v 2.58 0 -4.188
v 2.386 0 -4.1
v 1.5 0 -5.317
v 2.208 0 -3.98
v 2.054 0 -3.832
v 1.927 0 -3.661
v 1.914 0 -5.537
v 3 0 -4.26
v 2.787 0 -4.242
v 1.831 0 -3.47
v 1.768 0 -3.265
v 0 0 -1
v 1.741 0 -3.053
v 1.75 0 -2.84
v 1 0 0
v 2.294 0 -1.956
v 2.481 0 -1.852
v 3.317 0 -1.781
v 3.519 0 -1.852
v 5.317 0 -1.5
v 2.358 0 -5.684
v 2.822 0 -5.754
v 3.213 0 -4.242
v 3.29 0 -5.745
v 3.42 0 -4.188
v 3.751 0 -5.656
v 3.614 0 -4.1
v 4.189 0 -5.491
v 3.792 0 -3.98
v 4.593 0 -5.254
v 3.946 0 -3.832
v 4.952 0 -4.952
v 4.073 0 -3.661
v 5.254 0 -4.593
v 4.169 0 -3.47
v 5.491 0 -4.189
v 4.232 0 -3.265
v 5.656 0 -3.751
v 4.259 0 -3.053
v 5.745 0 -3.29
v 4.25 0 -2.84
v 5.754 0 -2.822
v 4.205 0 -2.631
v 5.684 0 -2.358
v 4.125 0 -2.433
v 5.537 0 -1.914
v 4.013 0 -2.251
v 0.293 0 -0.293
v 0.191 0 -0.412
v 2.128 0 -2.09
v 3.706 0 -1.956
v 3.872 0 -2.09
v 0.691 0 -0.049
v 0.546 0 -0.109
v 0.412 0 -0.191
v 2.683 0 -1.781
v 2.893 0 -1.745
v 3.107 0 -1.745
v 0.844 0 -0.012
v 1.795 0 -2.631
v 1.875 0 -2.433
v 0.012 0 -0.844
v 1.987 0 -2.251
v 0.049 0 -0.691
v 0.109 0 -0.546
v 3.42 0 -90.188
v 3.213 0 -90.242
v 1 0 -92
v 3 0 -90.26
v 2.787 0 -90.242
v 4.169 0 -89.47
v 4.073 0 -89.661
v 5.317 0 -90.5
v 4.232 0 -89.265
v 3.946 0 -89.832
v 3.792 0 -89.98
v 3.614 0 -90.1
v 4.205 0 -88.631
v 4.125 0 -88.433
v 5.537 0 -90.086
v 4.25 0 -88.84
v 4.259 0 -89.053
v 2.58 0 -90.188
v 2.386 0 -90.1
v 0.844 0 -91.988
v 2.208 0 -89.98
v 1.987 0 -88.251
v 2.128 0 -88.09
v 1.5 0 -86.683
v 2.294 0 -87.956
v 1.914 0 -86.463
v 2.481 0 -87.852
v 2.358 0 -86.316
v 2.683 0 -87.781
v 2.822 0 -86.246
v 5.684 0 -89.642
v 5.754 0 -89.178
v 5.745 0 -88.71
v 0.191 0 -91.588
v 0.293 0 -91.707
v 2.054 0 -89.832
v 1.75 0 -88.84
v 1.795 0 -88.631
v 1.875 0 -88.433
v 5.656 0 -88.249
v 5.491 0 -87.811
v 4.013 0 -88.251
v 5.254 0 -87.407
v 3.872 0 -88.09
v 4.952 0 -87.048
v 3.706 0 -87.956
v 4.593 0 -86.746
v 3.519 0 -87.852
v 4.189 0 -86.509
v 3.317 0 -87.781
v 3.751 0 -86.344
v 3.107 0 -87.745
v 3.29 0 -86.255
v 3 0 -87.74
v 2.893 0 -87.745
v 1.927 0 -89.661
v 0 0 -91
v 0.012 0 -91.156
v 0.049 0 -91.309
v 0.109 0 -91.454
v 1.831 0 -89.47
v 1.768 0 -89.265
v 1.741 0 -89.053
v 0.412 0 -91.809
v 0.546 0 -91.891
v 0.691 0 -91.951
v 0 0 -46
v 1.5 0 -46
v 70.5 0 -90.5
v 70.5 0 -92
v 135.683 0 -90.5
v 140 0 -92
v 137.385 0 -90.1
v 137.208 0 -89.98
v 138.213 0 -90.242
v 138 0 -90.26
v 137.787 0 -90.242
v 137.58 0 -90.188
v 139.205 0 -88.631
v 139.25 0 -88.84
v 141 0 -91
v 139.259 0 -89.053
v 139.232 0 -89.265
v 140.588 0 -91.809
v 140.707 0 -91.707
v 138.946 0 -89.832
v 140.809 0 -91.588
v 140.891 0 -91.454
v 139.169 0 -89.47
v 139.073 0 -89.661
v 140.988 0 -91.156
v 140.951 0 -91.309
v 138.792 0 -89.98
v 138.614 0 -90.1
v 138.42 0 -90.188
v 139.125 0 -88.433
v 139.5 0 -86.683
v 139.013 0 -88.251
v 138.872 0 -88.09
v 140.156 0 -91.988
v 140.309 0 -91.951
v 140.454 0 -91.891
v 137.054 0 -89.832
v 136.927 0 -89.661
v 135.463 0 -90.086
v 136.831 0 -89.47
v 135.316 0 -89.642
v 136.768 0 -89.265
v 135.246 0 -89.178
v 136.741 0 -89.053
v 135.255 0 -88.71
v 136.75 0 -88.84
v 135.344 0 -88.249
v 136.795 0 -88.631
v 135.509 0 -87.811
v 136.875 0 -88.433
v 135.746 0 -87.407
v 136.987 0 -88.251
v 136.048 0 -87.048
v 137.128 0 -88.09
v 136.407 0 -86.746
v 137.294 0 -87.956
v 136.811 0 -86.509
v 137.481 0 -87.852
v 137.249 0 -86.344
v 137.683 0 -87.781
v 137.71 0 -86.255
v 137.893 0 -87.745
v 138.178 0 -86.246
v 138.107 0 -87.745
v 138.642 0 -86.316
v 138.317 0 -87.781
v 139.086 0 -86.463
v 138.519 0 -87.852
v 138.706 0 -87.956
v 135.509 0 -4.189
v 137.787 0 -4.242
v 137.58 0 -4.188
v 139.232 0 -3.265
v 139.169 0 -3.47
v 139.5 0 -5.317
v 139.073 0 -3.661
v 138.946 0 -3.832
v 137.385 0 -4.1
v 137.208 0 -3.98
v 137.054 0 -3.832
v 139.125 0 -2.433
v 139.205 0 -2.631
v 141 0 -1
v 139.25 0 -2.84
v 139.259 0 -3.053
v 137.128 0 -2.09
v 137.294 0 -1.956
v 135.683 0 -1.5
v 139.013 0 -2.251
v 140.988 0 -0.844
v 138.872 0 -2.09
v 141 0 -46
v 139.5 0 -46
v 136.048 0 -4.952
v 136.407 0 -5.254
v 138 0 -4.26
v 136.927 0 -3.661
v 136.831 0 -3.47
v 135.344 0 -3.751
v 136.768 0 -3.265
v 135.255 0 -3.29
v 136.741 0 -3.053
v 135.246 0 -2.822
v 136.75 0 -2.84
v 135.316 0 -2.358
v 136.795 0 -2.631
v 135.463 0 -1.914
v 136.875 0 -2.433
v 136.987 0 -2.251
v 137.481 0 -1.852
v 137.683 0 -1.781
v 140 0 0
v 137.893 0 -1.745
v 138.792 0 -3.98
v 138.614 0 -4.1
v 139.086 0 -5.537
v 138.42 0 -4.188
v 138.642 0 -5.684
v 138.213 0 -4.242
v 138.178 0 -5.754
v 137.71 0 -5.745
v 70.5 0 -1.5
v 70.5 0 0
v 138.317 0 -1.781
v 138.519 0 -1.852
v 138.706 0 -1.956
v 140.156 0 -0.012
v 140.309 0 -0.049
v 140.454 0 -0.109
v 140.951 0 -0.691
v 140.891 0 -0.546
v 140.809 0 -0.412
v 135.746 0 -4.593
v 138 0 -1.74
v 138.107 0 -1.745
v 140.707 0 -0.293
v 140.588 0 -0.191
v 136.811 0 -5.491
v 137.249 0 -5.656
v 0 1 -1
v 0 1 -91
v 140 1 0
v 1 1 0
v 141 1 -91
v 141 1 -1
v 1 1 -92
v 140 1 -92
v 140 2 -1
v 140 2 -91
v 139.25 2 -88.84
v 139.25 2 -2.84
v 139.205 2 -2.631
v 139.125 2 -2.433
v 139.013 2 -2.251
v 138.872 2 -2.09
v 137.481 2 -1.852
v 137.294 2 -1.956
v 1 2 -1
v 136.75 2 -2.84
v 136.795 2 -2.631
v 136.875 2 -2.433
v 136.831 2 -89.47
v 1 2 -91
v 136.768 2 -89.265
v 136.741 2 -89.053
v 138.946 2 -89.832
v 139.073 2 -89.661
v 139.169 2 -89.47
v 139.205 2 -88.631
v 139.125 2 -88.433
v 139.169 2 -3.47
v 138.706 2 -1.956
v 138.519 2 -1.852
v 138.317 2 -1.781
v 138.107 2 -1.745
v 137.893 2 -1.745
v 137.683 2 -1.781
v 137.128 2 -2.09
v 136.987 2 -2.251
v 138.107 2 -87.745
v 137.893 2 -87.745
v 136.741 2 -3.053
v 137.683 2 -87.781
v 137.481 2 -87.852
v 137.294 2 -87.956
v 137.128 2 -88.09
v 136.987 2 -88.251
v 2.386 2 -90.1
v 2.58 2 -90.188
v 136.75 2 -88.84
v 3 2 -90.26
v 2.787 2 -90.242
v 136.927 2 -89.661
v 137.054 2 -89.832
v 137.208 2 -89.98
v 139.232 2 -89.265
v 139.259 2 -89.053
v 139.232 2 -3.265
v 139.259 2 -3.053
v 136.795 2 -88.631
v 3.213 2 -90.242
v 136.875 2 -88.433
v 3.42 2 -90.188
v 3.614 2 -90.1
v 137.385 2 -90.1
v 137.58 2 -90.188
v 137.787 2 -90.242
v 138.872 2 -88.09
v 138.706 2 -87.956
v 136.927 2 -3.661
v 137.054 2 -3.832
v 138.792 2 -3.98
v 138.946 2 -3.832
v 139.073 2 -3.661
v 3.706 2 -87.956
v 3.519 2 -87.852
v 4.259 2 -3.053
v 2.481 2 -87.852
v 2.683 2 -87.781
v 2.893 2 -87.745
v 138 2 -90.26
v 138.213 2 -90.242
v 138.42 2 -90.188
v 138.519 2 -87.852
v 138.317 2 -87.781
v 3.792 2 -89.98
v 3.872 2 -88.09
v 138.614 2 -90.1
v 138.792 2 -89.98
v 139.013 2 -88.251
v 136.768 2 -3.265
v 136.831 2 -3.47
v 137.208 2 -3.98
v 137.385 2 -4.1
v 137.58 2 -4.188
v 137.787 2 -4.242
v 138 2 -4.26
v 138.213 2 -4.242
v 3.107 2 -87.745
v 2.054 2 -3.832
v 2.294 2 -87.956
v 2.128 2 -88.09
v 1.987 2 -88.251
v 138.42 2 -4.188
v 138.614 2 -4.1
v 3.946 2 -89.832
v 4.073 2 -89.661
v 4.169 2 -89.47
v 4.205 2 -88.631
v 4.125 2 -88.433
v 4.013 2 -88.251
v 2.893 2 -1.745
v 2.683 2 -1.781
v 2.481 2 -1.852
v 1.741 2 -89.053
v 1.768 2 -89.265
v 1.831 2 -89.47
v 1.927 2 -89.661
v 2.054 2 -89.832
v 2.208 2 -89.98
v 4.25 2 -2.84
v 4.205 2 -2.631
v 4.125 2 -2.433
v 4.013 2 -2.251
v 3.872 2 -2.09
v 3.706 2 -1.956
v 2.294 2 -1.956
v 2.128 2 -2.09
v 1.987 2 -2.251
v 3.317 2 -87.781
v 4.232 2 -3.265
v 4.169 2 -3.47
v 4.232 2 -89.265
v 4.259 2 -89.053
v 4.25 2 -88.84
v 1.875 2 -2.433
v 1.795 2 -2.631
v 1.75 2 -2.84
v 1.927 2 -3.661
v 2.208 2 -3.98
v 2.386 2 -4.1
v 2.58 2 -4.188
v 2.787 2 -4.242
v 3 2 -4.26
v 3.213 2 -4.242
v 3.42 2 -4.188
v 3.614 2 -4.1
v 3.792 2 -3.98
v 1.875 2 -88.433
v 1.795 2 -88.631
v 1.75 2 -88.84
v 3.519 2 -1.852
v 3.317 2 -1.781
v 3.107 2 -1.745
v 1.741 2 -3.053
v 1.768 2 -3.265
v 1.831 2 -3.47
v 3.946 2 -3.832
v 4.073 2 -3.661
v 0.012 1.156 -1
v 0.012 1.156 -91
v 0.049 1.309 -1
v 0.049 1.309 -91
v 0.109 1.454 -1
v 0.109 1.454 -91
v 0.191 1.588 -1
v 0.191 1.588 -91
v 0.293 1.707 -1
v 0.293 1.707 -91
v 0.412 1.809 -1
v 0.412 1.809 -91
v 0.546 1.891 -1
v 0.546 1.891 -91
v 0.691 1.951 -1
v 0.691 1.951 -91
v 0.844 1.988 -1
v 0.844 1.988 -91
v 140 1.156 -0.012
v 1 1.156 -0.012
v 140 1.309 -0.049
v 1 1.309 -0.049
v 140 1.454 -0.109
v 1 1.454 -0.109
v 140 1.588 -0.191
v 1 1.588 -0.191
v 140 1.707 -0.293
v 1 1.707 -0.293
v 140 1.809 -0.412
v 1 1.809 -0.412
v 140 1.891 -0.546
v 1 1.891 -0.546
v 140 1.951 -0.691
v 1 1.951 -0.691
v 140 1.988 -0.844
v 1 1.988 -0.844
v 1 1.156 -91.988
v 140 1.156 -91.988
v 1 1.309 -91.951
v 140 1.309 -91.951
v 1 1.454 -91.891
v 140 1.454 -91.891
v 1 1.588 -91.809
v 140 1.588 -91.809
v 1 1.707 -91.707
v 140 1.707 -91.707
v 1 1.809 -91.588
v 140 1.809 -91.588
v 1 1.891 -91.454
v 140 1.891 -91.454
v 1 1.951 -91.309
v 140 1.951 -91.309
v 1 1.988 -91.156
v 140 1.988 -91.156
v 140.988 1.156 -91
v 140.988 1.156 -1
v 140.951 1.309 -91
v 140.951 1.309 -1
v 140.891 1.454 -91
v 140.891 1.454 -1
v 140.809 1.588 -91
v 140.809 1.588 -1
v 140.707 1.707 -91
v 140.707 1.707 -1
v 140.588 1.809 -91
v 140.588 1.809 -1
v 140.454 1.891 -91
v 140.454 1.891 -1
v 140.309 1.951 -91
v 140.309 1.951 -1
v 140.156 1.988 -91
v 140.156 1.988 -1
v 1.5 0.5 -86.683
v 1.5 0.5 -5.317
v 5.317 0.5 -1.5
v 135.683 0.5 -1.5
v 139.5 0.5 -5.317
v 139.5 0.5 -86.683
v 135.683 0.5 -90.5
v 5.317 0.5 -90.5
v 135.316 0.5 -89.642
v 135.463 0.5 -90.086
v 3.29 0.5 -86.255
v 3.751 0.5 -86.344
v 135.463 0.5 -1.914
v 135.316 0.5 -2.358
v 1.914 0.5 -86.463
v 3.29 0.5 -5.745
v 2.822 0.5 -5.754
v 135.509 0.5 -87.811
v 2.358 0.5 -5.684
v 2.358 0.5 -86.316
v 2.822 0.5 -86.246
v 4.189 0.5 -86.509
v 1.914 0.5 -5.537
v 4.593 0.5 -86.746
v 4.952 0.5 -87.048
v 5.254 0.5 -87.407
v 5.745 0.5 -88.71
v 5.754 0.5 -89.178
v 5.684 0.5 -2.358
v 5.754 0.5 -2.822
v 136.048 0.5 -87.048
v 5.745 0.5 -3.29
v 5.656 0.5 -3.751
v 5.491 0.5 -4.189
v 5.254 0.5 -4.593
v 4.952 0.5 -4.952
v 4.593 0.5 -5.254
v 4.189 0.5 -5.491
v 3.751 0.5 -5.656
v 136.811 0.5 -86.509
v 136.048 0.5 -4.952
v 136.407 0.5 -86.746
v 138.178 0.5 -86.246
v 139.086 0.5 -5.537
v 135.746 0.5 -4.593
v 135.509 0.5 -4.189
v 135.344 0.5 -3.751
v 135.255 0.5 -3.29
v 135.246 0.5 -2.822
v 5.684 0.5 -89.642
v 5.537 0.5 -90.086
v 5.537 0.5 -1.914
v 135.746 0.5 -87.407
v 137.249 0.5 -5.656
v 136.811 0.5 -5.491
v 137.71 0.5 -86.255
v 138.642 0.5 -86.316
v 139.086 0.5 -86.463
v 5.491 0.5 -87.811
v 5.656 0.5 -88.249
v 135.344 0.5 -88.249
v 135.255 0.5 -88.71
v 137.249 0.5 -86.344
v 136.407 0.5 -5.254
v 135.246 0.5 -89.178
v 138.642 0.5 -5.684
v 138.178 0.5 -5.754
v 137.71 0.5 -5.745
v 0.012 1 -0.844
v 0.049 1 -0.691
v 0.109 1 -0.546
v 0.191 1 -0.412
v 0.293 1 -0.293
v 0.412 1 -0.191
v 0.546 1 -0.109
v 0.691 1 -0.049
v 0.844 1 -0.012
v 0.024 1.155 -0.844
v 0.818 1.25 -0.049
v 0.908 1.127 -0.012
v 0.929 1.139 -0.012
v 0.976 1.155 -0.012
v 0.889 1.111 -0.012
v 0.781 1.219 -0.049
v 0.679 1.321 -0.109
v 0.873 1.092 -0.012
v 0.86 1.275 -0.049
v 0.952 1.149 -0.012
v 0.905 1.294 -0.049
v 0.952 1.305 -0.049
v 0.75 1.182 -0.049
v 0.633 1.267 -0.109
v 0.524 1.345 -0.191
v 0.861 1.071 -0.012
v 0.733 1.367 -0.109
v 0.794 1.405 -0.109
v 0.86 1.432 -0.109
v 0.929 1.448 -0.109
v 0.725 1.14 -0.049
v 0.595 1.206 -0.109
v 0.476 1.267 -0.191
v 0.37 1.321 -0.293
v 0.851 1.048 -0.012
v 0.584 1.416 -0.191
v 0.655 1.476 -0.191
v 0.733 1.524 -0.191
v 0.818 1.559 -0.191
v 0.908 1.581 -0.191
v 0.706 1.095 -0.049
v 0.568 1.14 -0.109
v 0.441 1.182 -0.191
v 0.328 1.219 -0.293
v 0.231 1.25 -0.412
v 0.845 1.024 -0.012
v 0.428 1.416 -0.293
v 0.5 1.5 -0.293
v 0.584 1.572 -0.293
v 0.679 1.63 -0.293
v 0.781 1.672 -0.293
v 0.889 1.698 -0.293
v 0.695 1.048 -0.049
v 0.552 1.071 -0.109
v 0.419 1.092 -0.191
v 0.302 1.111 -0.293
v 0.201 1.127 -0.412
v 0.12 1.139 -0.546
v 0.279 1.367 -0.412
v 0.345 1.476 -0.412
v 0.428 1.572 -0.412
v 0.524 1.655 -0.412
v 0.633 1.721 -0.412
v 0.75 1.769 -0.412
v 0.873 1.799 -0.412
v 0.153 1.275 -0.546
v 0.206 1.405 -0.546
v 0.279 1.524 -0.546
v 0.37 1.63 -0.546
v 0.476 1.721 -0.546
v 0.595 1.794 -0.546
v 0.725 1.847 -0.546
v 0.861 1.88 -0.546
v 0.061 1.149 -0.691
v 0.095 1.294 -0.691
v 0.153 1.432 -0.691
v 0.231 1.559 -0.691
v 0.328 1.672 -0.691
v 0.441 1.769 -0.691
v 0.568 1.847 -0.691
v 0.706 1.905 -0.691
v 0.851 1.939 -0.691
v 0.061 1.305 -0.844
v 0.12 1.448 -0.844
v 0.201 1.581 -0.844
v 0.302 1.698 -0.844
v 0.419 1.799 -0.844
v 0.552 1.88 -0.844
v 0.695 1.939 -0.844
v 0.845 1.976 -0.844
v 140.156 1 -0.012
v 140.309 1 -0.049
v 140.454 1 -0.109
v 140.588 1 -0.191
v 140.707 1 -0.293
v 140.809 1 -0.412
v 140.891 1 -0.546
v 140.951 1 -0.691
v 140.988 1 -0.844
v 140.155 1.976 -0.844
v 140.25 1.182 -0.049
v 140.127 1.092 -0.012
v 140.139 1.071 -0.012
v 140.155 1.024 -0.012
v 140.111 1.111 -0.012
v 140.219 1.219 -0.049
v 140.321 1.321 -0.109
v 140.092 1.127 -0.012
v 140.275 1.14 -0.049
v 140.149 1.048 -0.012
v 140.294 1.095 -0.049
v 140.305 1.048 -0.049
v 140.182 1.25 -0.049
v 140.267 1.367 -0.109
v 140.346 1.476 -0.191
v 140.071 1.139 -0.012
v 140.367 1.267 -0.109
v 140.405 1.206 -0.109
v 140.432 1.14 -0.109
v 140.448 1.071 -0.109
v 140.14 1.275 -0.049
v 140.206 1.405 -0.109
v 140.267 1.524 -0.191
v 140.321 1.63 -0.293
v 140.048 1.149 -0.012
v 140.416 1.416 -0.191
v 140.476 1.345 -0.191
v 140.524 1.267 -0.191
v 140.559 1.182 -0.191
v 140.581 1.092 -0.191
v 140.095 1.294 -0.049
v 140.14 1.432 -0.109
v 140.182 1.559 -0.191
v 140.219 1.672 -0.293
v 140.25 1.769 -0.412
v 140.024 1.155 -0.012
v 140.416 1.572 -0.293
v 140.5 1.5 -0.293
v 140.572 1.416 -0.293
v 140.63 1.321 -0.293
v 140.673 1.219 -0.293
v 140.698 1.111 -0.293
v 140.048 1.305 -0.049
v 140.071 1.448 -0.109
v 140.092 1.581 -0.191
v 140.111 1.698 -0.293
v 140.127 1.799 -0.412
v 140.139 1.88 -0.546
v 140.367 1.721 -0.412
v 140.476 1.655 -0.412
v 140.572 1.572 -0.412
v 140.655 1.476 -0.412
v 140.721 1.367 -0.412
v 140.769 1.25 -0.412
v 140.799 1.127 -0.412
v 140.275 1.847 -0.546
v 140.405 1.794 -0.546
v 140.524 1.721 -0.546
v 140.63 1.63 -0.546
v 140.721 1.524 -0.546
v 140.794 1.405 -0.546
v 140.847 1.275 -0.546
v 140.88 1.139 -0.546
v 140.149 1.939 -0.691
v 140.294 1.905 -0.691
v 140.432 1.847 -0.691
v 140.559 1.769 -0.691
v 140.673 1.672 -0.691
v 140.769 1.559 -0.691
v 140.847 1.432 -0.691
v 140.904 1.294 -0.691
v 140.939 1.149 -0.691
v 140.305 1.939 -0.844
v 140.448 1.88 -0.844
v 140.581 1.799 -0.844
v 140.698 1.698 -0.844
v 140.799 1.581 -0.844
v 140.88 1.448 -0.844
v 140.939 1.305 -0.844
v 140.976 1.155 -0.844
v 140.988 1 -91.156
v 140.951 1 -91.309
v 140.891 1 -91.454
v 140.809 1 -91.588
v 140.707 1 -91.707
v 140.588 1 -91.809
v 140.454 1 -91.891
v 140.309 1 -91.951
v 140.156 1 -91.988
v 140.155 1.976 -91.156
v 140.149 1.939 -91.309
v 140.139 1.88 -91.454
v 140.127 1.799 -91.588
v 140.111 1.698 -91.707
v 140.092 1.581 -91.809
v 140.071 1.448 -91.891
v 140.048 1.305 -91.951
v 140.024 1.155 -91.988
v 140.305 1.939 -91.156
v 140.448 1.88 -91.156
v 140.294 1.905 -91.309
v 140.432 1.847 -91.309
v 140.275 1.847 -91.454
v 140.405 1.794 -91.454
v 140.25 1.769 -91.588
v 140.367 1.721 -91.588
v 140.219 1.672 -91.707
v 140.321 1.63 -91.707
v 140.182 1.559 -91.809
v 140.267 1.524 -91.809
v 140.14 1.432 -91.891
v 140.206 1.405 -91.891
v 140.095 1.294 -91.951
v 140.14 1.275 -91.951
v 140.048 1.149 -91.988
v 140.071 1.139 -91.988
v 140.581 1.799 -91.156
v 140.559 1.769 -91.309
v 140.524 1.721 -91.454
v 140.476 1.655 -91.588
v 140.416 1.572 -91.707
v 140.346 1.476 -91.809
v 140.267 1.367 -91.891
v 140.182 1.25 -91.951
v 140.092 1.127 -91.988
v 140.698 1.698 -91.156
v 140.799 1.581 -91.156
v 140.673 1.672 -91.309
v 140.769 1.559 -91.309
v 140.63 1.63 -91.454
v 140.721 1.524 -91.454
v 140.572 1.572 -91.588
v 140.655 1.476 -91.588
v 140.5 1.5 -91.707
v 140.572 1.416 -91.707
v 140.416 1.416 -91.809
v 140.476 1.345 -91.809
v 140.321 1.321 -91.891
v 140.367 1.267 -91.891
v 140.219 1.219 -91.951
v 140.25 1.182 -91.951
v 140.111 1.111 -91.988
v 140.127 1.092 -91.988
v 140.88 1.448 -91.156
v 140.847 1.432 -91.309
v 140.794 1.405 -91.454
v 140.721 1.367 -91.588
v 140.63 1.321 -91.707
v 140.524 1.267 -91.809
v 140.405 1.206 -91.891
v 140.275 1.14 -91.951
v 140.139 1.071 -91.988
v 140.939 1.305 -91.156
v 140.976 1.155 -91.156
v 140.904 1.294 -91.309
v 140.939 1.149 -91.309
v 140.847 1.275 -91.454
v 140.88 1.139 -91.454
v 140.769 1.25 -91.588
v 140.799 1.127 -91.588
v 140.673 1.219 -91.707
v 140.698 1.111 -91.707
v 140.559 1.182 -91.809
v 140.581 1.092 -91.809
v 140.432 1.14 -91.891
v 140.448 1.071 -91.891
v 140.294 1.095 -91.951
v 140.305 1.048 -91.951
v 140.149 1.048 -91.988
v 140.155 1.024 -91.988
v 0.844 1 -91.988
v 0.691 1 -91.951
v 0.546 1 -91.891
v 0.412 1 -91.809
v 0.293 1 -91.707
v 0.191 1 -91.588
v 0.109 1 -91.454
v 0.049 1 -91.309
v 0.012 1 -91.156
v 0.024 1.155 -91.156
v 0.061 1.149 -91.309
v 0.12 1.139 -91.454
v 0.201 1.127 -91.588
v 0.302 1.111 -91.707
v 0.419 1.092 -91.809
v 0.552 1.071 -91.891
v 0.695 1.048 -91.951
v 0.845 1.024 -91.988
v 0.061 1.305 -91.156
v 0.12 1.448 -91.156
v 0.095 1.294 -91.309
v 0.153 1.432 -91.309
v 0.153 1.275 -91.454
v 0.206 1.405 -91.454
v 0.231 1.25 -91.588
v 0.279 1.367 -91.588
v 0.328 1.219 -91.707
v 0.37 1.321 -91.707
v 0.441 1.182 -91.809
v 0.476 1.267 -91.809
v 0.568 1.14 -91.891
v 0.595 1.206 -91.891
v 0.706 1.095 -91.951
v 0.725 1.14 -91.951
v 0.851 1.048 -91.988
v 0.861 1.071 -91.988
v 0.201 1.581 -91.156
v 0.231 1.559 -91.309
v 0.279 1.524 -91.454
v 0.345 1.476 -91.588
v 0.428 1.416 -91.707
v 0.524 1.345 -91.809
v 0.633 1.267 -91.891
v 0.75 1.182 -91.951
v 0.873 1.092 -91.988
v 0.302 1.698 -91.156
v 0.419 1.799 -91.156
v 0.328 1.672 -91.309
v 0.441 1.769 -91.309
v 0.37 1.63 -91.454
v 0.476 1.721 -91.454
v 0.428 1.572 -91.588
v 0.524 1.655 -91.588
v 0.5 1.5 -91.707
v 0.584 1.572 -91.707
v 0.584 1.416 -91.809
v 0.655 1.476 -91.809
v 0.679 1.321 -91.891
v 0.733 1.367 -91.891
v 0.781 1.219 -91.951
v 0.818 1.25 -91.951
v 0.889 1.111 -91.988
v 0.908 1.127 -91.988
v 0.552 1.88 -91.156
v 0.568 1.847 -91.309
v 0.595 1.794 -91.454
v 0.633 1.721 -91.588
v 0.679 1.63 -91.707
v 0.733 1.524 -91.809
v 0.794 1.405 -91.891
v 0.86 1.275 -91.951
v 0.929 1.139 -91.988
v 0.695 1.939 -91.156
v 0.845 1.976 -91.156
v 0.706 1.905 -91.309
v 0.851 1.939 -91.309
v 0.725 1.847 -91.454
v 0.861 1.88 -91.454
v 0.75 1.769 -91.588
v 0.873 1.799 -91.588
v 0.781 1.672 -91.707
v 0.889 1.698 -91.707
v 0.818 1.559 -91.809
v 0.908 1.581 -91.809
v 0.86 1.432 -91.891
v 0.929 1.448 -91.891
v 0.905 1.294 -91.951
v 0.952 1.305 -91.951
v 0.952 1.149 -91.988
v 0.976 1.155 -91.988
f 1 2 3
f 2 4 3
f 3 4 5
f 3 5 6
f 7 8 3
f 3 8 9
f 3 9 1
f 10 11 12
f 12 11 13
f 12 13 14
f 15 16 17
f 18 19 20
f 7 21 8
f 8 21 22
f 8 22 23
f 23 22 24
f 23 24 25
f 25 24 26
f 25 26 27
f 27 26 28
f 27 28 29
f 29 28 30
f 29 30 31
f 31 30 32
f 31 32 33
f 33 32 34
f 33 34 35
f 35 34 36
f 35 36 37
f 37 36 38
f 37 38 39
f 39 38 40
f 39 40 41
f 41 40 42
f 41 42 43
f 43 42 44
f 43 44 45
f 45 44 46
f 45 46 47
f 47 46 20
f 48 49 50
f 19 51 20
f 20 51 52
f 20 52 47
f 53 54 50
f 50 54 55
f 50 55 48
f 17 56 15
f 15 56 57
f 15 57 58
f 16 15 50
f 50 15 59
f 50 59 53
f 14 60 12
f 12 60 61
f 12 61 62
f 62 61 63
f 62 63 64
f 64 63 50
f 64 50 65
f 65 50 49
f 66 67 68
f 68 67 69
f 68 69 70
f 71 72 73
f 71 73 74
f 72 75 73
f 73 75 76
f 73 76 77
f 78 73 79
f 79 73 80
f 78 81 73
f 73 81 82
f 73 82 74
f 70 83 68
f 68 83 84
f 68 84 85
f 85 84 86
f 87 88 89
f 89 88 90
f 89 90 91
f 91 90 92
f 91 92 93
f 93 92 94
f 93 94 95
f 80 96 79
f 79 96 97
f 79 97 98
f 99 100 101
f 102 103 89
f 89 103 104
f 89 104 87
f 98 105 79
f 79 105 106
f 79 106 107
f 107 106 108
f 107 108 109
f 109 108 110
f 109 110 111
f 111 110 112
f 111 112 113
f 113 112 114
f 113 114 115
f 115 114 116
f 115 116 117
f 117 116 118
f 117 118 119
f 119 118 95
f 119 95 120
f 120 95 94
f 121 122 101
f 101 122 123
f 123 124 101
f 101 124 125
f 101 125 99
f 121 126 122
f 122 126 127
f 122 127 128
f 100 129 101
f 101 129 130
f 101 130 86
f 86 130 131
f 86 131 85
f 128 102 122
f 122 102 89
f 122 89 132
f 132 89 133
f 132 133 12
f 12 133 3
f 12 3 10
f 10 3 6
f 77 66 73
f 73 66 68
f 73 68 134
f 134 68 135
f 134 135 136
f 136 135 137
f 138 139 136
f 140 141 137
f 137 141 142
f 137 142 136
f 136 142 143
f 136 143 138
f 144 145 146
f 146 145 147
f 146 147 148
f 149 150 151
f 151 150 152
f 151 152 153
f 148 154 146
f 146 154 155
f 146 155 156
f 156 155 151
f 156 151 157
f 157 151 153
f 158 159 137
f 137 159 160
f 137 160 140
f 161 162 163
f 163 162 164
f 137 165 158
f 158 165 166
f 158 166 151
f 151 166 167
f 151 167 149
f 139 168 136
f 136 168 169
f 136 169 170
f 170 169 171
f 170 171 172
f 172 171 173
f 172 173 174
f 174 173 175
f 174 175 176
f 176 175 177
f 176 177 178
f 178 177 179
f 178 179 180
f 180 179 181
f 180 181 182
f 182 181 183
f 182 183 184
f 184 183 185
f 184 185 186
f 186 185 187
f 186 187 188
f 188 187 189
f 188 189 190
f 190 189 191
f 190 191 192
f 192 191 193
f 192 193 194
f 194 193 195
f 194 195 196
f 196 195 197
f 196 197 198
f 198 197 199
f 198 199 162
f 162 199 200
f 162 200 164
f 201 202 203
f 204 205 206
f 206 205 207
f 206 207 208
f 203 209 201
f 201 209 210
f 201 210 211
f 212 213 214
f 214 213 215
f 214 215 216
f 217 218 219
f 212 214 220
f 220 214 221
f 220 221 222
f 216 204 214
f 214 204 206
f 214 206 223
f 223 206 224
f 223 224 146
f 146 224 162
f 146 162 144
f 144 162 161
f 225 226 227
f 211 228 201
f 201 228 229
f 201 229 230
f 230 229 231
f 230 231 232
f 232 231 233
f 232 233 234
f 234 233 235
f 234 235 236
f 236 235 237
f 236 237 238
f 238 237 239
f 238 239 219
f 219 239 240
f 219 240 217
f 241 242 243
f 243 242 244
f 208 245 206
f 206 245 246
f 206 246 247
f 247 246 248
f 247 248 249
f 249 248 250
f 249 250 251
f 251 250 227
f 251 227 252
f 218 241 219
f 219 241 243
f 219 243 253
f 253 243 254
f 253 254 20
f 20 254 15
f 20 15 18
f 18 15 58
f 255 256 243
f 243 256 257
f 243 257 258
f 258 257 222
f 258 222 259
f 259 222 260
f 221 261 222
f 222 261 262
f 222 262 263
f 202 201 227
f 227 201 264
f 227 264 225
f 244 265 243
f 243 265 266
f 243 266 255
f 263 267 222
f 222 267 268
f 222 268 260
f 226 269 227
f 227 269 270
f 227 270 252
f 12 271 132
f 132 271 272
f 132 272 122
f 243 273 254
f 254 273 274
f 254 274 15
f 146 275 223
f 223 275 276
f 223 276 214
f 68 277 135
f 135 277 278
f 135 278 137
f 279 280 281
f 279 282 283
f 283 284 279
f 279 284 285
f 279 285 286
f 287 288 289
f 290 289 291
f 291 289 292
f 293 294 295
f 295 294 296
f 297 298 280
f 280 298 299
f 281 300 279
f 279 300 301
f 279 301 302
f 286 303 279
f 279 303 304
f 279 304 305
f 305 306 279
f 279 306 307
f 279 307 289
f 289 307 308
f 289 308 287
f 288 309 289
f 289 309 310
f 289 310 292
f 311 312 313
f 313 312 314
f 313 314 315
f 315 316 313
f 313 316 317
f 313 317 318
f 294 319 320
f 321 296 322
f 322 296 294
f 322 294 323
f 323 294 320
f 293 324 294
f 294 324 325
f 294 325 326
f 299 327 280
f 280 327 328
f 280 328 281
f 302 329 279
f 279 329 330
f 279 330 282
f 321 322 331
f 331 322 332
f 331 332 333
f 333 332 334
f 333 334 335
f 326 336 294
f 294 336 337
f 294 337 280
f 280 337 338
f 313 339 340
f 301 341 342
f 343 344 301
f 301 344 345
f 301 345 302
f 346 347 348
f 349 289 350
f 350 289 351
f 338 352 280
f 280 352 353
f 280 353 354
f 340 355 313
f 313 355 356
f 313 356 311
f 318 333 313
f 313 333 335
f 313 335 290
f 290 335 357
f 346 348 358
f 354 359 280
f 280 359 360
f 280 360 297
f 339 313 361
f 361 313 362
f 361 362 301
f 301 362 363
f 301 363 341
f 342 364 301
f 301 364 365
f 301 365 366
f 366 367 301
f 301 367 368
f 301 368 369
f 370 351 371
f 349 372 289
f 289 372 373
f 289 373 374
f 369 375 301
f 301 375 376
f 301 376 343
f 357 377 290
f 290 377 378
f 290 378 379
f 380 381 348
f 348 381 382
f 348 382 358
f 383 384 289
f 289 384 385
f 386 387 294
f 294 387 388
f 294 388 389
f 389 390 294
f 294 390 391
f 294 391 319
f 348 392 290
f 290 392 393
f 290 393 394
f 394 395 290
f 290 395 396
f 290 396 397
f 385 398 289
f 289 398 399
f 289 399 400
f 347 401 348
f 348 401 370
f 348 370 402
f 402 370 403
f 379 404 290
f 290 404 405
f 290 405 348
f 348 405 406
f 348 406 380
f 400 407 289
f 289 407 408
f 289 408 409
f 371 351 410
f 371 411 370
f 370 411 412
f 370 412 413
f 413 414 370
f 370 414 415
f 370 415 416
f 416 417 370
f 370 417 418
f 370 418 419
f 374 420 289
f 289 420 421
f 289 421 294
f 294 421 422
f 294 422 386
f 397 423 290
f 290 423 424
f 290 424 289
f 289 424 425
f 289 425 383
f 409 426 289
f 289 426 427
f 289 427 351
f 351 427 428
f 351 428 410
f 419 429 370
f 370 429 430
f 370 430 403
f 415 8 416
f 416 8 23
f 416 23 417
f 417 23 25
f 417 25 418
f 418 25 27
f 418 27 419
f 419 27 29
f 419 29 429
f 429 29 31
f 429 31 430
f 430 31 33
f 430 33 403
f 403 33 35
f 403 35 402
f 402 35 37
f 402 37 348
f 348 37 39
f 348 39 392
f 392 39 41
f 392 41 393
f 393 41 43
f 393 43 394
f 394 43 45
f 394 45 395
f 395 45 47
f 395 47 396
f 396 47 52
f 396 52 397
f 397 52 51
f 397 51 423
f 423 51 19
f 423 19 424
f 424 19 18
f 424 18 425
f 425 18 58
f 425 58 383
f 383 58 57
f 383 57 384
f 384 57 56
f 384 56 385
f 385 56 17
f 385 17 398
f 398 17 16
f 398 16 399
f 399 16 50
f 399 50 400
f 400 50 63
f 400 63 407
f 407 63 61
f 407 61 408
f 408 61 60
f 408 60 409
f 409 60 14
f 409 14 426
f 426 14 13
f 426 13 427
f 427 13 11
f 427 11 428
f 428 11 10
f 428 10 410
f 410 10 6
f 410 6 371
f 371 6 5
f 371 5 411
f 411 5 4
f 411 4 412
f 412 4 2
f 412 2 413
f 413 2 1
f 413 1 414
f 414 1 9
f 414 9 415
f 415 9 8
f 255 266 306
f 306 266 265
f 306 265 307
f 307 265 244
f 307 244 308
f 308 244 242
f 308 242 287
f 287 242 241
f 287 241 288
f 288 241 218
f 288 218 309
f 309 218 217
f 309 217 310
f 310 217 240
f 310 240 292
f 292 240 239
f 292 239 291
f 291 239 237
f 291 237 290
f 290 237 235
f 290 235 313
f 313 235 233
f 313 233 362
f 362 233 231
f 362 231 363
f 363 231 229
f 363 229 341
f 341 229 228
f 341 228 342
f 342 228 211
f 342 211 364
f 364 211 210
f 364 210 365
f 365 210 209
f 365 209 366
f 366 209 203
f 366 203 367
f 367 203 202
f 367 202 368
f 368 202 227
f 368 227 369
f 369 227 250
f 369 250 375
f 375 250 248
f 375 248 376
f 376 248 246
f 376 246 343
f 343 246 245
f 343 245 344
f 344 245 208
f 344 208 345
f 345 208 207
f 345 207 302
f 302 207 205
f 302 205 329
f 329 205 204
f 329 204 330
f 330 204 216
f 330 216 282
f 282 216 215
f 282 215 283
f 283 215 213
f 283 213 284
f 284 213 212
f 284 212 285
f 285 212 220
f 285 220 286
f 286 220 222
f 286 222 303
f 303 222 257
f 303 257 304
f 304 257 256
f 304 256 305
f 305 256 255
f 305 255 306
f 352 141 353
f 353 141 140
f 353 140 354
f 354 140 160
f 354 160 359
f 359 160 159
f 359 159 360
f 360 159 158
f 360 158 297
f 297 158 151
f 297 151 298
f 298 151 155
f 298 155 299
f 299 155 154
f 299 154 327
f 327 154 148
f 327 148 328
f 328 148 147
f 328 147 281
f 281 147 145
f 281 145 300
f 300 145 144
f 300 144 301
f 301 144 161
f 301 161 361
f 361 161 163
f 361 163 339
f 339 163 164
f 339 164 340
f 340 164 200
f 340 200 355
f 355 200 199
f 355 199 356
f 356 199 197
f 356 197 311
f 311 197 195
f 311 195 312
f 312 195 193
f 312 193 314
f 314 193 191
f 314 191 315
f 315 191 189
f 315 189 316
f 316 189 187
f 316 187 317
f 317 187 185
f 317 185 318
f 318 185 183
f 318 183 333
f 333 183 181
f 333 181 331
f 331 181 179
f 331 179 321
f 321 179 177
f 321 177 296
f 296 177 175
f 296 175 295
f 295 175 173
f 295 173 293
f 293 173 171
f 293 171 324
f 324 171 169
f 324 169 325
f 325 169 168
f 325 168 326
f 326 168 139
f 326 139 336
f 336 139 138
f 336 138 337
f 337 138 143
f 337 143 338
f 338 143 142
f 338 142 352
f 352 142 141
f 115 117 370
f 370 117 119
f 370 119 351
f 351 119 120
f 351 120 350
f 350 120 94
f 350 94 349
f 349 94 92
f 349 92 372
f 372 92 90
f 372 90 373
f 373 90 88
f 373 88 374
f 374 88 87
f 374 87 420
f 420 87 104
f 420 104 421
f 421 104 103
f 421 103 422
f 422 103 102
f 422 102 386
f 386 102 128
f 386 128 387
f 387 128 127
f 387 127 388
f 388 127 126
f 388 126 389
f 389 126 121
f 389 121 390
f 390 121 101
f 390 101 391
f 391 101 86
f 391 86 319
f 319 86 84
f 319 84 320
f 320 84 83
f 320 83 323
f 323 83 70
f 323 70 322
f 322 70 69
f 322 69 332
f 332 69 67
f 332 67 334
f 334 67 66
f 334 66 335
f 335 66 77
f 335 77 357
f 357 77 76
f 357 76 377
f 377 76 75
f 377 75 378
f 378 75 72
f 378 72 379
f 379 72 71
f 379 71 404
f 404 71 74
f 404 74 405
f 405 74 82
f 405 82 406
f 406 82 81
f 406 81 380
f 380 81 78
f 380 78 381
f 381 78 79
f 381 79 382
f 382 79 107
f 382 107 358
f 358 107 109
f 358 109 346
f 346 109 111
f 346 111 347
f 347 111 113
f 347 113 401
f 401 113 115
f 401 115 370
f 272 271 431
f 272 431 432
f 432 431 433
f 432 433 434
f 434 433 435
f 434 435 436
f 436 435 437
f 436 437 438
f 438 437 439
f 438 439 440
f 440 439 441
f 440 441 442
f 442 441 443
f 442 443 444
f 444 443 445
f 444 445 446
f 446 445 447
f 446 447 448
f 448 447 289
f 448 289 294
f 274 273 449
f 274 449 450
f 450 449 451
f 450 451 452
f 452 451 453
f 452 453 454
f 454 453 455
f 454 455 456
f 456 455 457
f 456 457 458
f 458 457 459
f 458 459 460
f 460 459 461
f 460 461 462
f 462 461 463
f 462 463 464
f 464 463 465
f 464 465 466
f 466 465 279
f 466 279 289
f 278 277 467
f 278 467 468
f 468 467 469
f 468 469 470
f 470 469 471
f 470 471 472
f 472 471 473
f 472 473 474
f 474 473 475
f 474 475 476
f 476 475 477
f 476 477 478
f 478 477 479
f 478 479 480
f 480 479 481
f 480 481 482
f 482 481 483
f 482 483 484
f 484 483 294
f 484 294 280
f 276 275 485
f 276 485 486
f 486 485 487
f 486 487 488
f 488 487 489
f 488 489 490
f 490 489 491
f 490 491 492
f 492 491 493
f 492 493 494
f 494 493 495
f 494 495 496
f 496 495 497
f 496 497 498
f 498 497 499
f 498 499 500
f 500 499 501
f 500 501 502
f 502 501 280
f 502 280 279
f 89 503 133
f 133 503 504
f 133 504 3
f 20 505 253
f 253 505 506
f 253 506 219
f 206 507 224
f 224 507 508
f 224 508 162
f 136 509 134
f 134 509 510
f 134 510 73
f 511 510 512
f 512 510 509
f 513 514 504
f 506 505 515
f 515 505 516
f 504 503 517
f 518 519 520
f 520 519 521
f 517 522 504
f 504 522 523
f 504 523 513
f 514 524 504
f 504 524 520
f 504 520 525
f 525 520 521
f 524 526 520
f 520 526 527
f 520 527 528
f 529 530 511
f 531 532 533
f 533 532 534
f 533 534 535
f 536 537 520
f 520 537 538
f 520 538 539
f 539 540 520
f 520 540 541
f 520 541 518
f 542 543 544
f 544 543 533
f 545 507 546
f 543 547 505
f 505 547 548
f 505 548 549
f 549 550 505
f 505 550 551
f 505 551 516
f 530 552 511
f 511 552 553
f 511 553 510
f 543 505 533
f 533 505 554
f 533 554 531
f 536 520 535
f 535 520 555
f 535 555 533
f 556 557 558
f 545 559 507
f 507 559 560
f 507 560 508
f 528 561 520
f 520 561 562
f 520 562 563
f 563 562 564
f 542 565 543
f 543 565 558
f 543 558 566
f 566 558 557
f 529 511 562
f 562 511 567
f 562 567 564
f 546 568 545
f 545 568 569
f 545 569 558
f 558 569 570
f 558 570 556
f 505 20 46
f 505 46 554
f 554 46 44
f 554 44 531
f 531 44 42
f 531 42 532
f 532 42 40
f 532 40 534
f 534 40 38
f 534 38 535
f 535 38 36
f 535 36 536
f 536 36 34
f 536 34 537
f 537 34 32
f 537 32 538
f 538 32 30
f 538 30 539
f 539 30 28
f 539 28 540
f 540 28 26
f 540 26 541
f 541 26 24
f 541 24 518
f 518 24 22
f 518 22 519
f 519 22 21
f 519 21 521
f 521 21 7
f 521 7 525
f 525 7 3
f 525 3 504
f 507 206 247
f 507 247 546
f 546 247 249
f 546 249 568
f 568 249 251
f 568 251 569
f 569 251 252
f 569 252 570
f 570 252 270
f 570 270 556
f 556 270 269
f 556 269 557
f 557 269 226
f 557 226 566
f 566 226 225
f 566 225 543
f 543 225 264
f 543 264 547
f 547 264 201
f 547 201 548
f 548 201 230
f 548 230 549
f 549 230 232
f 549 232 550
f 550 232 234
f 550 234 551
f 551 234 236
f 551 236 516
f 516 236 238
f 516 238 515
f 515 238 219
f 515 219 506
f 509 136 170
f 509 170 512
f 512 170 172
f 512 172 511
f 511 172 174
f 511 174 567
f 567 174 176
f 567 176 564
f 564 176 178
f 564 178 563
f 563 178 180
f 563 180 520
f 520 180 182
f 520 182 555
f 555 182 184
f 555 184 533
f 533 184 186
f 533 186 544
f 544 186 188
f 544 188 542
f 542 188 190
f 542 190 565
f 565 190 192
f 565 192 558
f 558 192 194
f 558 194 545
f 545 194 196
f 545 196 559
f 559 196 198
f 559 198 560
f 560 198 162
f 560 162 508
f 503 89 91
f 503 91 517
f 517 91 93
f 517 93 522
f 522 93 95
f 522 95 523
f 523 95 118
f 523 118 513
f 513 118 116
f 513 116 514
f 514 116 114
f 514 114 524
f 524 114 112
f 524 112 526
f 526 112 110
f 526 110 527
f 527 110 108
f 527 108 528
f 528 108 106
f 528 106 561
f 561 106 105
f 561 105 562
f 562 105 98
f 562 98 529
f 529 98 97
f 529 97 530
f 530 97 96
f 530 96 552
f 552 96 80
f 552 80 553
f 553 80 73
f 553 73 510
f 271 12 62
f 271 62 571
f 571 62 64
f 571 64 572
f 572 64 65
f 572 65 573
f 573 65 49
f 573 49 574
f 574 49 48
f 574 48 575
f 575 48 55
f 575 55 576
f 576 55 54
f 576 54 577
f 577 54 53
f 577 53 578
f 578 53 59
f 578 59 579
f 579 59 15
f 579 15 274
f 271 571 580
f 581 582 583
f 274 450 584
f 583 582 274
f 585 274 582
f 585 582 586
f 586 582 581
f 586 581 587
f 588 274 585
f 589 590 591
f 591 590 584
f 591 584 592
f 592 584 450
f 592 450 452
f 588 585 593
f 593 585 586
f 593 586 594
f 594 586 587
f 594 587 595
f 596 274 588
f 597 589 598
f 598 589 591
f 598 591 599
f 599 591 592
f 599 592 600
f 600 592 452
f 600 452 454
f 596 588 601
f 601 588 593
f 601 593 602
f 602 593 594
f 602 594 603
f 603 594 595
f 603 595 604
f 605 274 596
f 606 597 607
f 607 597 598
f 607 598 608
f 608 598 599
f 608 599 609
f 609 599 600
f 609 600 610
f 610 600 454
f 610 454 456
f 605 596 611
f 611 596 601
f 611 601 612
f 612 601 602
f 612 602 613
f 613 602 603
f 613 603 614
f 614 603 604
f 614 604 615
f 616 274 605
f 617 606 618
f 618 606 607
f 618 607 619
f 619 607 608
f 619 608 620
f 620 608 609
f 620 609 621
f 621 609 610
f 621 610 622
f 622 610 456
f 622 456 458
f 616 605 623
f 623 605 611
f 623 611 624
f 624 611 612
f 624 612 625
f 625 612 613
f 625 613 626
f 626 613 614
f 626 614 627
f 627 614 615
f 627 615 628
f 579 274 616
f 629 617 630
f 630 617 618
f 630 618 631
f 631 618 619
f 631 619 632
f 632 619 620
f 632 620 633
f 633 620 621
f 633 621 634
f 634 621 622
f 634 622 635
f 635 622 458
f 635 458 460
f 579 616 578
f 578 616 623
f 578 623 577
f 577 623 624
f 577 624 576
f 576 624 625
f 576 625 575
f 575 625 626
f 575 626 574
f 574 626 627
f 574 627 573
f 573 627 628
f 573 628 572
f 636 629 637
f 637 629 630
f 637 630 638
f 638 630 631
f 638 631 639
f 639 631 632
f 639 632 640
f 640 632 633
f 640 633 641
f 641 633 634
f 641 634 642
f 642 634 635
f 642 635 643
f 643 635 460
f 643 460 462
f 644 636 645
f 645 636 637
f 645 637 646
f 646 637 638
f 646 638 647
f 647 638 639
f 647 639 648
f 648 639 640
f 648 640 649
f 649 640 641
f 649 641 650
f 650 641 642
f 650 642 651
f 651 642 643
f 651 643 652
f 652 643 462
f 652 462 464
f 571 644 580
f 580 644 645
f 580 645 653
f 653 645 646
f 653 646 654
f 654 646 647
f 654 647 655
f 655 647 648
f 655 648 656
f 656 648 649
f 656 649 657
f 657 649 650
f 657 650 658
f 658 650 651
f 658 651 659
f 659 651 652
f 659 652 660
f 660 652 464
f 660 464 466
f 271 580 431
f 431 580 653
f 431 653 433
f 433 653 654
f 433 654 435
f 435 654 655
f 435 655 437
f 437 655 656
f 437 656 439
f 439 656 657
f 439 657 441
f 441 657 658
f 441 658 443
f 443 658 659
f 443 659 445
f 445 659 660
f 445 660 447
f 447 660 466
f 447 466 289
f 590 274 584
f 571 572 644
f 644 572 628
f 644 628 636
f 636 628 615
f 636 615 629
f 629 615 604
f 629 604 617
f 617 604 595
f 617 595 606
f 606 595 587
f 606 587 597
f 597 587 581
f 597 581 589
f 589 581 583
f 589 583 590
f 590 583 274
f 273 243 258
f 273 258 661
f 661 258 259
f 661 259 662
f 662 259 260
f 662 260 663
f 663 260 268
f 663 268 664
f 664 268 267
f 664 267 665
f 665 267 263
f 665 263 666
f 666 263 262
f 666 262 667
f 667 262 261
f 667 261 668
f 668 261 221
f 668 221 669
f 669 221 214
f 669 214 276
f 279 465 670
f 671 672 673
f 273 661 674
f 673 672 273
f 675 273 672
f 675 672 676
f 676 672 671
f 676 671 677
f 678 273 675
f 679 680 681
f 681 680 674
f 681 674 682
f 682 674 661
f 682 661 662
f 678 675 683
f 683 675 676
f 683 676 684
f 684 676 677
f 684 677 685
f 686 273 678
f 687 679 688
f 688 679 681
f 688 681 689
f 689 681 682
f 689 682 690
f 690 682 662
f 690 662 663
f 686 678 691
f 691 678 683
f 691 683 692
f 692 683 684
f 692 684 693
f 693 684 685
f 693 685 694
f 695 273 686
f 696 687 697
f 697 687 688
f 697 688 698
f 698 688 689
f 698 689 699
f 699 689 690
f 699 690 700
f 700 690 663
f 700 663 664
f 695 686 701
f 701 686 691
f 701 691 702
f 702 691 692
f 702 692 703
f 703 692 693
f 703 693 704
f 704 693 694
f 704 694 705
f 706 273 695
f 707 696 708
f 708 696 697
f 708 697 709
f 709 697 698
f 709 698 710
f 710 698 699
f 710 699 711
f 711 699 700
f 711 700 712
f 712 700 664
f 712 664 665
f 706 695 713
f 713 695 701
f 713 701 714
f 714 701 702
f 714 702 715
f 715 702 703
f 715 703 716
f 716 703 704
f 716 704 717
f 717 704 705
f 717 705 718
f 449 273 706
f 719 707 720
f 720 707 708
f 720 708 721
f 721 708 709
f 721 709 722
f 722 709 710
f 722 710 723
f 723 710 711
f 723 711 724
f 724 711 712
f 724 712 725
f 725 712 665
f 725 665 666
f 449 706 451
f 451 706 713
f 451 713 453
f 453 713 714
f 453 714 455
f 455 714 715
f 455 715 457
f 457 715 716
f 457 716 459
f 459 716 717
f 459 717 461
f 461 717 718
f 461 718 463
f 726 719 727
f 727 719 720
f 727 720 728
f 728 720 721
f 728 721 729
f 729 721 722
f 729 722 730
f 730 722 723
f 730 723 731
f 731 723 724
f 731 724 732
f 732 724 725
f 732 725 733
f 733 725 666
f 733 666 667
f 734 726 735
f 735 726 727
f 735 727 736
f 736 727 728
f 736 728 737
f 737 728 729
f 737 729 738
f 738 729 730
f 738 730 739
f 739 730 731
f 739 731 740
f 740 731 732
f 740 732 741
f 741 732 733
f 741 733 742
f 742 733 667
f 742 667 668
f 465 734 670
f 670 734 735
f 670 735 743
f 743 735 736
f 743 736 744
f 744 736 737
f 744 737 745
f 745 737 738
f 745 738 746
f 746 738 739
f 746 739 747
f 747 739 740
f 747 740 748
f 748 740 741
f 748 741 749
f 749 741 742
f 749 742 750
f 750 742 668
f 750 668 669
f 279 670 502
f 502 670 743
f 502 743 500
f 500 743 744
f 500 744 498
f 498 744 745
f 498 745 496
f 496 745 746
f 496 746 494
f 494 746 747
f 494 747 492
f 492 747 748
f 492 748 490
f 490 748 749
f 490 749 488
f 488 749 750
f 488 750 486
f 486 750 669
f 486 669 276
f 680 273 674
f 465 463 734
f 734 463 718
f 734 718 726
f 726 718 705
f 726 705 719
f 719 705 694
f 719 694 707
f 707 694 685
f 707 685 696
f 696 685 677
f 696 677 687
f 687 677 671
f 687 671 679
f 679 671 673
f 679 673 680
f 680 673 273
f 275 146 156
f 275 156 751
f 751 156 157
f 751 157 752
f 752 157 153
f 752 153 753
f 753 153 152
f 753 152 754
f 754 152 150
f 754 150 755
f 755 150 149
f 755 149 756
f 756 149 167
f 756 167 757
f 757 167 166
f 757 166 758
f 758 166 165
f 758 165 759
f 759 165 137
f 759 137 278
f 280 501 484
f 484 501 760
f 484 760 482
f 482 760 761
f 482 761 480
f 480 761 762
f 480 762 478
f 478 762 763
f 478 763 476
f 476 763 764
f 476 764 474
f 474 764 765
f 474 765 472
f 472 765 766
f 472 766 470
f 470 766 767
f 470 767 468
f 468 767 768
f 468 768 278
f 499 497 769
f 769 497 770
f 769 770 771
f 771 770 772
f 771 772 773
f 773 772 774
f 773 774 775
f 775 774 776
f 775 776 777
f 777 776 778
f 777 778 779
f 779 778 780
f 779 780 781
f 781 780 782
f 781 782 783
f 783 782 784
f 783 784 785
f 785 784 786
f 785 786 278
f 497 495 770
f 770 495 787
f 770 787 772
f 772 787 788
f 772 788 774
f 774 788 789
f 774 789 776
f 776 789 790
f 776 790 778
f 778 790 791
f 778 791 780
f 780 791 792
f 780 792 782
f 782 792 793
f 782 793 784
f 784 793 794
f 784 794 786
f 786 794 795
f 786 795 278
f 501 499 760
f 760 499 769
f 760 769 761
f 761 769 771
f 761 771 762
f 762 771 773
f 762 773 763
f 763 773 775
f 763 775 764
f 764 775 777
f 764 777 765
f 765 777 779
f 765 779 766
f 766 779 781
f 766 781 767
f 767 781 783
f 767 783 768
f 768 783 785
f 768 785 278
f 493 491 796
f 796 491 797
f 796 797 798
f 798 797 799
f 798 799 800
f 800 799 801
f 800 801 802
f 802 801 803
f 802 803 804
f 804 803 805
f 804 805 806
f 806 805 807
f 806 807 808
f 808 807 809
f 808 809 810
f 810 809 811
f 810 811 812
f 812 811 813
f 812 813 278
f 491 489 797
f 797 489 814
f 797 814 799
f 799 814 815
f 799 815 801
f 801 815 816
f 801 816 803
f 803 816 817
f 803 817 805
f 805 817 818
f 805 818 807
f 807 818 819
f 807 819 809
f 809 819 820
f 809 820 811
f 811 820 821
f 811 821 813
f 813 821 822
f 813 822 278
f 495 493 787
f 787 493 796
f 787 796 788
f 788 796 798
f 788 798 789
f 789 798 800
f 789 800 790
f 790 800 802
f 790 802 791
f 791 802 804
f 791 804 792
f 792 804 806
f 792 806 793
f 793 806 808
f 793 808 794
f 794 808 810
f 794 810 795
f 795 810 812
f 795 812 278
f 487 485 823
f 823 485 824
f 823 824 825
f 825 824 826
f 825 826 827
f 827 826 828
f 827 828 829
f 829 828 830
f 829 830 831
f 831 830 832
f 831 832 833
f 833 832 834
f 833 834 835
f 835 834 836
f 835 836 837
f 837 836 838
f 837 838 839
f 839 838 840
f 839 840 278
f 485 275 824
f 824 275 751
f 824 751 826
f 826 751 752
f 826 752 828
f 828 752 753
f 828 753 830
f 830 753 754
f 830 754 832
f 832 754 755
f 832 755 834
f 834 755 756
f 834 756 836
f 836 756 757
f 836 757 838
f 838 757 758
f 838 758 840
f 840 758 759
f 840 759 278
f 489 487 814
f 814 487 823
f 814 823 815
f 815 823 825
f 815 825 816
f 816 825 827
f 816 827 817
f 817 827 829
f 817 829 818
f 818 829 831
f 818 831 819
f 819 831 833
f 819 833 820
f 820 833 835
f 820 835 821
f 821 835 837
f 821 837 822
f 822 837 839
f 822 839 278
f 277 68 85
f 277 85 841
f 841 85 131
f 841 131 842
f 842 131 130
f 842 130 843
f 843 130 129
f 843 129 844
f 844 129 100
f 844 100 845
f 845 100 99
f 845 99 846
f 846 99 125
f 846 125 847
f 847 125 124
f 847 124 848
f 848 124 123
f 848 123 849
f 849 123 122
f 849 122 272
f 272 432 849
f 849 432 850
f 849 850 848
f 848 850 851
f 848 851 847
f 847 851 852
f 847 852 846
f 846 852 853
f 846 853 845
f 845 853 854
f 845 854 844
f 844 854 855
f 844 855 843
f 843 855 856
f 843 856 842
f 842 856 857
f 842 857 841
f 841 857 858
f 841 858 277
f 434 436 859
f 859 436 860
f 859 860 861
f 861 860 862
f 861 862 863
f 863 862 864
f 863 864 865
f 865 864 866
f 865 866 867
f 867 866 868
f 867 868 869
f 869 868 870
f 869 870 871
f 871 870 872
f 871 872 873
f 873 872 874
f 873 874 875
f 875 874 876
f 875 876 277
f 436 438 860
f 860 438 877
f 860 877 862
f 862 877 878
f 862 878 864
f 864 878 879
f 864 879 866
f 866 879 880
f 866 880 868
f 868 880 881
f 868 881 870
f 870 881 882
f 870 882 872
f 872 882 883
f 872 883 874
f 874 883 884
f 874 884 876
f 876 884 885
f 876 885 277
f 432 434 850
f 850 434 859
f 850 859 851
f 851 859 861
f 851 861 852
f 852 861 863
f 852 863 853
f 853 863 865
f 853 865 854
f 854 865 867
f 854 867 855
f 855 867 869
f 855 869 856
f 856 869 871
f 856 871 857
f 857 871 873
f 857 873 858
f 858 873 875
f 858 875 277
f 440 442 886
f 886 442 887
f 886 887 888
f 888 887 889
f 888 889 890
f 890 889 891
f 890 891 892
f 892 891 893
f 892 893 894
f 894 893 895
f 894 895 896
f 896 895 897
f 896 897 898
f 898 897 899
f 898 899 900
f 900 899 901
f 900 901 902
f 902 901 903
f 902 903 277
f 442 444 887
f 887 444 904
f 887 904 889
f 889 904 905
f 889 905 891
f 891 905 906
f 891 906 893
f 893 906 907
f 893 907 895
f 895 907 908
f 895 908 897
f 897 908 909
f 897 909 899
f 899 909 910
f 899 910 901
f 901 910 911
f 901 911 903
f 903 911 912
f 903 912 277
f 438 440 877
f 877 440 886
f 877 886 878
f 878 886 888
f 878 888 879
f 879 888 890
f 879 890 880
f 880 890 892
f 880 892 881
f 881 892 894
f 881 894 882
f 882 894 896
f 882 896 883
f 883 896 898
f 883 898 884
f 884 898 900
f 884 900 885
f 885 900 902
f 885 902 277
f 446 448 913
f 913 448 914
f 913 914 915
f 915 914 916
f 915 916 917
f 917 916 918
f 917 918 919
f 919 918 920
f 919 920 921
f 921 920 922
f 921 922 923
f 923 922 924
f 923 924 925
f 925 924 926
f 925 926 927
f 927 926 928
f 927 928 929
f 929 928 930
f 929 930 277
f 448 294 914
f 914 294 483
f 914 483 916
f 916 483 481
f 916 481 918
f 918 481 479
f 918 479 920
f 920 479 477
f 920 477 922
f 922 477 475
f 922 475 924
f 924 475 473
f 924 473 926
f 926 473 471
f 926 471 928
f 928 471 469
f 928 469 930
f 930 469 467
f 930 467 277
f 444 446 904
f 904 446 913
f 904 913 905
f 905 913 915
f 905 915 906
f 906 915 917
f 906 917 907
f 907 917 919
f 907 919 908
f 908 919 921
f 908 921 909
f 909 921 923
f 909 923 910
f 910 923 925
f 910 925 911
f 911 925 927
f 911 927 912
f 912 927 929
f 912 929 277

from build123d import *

# Parameters (mm, degrees)
SKETCH1_W           = 141
SKETCH1_H           = 92
BOSS_EXTRUDE1_DEPTH = 2
SKETCH2_R           = 1.26
CUT_EXTRUDE1_DEPTH  = 10
FILLET1_R           = 1
SHELL1_T            = -1.5
FILLET2_R           = 1


with BuildPart() as part:
    # Sketch1 → Boss-Extrude1 (new body)
    with BuildSketch(Plane(origin=(0, 0, 0), x_dir=(1, 0, 0), z_dir=(0, 1, 0))):
        with Locations((70.5, 46)):
            Rectangle(SKETCH1_W, SKETCH1_H)
    extrude(amount=BOSS_EXTRUDE1_DEPTH)

    # Sketch2 → Cut-Extrude1 (cut)
    with BuildSketch(Plane.XZ):
        with Locations(Location((3, -3, 0), (0, 0, 270))):
            Circle(SKETCH2_R)
        with Locations(Location((138, -3, 0), (0, 0, 270))):
            Circle(SKETCH2_R)
        with Locations(Location((138, -89, 0), (0, 0, 270))):
            Circle(SKETCH2_R)
        with Locations(Location((3, -89, 0), (0, 0, 270))):
            Circle(SKETCH2_R)
    extrude(amount=-CUT_EXTRUDE1_DEPTH, mode=Mode.SUBTRACT)

    # Fillet1
    fillet1_edges = [part.edges().sort_by_distance(p)[0] for p in [
        (141, 2, -46),
        (70.5, 2, -92),
        (0, 2, -46),
        (70.5, 2, 0),
    ]]
    fillet(fillet1_edges, radius=FILLET1_R)

    # Shell1
    shell1_openings = [part.faces().sort_by_distance(p)[0] for p in [
        (70.5, 0, -46),
    ]]
    offset(amount=SHELL1_T, openings=shell1_openings, kind=Kind.INTERSECTION)

    # Fillet2
    # the kernel refuses this fillet: 1 mm, written as the material it takes off along each edge
    with BuildSketch(Plane(origin=(1, 1, -1), x_dir=(-1, 0, 0), z_dir=(0, 0, 1))) as fillet2_piece_1_section:
        Polygon((0, 0), (FILLET2_R, 0), (FILLET2_R, -FILLET2_R), (0, -FILLET2_R), align=None)
    fillet2_piece_1 = extrude(amount=FILLET2_R, mode=Mode.PRIVATE)
    fillet2_piece_1 = fillet2_piece_1 - Plane(origin=(1, 1, -1), x_dir=(0.7071067811865475, -0.7071067811865475, 0), z_dir=(0, 0, 1)) * Sphere(FILLET2_R, mode=Mode.PRIVATE)
    add(fillet2_piece_1, mode=Mode.SUBTRACT)
    with BuildSketch(Plane(origin=(1, 1, -91), x_dir=(-1, 0, 0), z_dir=(0, 0, -1))) as fillet2_piece_2_section:
        Polygon((0, 0), (FILLET2_R, 0), (FILLET2_R, FILLET2_R), (0, FILLET2_R), align=None)
    fillet2_piece_2 = extrude(amount=FILLET2_R, mode=Mode.PRIVATE)
    fillet2_piece_2 = fillet2_piece_2 - Plane(origin=(1, 1, -91), x_dir=(0.7071067811865475, -0.7071067811865475, 0), z_dir=(0, 0, -1)) * Sphere(FILLET2_R, mode=Mode.PRIVATE)
    add(fillet2_piece_2, mode=Mode.SUBTRACT)
    with BuildSketch(Plane(origin=(140, 1, -1), x_dir=(1, 0, 0), z_dir=(0, 0, 1))) as fillet2_piece_3_section:
        Polygon((0, 0), (FILLET2_R, 0), (FILLET2_R, FILLET2_R), (0, FILLET2_R), align=None)
    fillet2_piece_3 = extrude(amount=FILLET2_R, mode=Mode.PRIVATE)
    fillet2_piece_3 = fillet2_piece_3 - Plane(origin=(140, 1, -1), x_dir=(-0.7071067811865475, -0.7071067811865475, 0), z_dir=(0, 0, 1)) * Sphere(FILLET2_R, mode=Mode.PRIVATE)
    add(fillet2_piece_3, mode=Mode.SUBTRACT)
    with BuildSketch(Plane(origin=(140, 1, -91), x_dir=(0, 0, -1), z_dir=(1, 0, 0))) as fillet2_piece_4_section:
        Polygon((0, 0), (FILLET2_R, 0), (FILLET2_R, FILLET2_R), (0, FILLET2_R), align=None)
    fillet2_piece_4 = extrude(amount=FILLET2_R, mode=Mode.PRIVATE)
    fillet2_piece_4 = fillet2_piece_4 - Plane(origin=(140, 1, -91), x_dir=(0, -0.7071067811865475, 0.7071067811865475), z_dir=(1, 0, 0)) * Sphere(FILLET2_R, mode=Mode.PRIVATE)
    add(fillet2_piece_4, mode=Mode.SUBTRACT)
    with BuildSketch(Plane(origin=(141, -2.5, -92), x_dir=(0, 0, 1), z_dir=(0, 1, 0)), Plane(origin=(141, -2.5, 0), x_dir=(-1, 0, 0), z_dir=(0, 1, 0)), Plane(origin=(0, -2.5, -92), x_dir=(1, 0, 0), z_dir=(0, 1, 0))) as fillet2_piece_5:
        with BuildLine():
            CenterArc((FILLET2_R, -FILLET2_R), FILLET2_R, 90, 90)
            Line((0, -FILLET2_R), (0, 0))
            Line((0, 0), (FILLET2_R, 0))
        make_face()
    extrude(amount=3.5, mode=Mode.SUBTRACT)
    with BuildSketch(Plane(origin=(0, -2.5, 0), x_dir=(1, 0, 0), z_dir=(0, 1, 0))) as fillet2_piece_6:
        with BuildLine():
            CenterArc((FILLET2_R, FILLET2_R), FILLET2_R, 180, 90)
            Line((0, FILLET2_R), (0, 0))
            Line((0, 0), (FILLET2_R, 0))
        make_face()
    extrude(amount=3.5, mode=Mode.SUBTRACT)


solid = part.part
